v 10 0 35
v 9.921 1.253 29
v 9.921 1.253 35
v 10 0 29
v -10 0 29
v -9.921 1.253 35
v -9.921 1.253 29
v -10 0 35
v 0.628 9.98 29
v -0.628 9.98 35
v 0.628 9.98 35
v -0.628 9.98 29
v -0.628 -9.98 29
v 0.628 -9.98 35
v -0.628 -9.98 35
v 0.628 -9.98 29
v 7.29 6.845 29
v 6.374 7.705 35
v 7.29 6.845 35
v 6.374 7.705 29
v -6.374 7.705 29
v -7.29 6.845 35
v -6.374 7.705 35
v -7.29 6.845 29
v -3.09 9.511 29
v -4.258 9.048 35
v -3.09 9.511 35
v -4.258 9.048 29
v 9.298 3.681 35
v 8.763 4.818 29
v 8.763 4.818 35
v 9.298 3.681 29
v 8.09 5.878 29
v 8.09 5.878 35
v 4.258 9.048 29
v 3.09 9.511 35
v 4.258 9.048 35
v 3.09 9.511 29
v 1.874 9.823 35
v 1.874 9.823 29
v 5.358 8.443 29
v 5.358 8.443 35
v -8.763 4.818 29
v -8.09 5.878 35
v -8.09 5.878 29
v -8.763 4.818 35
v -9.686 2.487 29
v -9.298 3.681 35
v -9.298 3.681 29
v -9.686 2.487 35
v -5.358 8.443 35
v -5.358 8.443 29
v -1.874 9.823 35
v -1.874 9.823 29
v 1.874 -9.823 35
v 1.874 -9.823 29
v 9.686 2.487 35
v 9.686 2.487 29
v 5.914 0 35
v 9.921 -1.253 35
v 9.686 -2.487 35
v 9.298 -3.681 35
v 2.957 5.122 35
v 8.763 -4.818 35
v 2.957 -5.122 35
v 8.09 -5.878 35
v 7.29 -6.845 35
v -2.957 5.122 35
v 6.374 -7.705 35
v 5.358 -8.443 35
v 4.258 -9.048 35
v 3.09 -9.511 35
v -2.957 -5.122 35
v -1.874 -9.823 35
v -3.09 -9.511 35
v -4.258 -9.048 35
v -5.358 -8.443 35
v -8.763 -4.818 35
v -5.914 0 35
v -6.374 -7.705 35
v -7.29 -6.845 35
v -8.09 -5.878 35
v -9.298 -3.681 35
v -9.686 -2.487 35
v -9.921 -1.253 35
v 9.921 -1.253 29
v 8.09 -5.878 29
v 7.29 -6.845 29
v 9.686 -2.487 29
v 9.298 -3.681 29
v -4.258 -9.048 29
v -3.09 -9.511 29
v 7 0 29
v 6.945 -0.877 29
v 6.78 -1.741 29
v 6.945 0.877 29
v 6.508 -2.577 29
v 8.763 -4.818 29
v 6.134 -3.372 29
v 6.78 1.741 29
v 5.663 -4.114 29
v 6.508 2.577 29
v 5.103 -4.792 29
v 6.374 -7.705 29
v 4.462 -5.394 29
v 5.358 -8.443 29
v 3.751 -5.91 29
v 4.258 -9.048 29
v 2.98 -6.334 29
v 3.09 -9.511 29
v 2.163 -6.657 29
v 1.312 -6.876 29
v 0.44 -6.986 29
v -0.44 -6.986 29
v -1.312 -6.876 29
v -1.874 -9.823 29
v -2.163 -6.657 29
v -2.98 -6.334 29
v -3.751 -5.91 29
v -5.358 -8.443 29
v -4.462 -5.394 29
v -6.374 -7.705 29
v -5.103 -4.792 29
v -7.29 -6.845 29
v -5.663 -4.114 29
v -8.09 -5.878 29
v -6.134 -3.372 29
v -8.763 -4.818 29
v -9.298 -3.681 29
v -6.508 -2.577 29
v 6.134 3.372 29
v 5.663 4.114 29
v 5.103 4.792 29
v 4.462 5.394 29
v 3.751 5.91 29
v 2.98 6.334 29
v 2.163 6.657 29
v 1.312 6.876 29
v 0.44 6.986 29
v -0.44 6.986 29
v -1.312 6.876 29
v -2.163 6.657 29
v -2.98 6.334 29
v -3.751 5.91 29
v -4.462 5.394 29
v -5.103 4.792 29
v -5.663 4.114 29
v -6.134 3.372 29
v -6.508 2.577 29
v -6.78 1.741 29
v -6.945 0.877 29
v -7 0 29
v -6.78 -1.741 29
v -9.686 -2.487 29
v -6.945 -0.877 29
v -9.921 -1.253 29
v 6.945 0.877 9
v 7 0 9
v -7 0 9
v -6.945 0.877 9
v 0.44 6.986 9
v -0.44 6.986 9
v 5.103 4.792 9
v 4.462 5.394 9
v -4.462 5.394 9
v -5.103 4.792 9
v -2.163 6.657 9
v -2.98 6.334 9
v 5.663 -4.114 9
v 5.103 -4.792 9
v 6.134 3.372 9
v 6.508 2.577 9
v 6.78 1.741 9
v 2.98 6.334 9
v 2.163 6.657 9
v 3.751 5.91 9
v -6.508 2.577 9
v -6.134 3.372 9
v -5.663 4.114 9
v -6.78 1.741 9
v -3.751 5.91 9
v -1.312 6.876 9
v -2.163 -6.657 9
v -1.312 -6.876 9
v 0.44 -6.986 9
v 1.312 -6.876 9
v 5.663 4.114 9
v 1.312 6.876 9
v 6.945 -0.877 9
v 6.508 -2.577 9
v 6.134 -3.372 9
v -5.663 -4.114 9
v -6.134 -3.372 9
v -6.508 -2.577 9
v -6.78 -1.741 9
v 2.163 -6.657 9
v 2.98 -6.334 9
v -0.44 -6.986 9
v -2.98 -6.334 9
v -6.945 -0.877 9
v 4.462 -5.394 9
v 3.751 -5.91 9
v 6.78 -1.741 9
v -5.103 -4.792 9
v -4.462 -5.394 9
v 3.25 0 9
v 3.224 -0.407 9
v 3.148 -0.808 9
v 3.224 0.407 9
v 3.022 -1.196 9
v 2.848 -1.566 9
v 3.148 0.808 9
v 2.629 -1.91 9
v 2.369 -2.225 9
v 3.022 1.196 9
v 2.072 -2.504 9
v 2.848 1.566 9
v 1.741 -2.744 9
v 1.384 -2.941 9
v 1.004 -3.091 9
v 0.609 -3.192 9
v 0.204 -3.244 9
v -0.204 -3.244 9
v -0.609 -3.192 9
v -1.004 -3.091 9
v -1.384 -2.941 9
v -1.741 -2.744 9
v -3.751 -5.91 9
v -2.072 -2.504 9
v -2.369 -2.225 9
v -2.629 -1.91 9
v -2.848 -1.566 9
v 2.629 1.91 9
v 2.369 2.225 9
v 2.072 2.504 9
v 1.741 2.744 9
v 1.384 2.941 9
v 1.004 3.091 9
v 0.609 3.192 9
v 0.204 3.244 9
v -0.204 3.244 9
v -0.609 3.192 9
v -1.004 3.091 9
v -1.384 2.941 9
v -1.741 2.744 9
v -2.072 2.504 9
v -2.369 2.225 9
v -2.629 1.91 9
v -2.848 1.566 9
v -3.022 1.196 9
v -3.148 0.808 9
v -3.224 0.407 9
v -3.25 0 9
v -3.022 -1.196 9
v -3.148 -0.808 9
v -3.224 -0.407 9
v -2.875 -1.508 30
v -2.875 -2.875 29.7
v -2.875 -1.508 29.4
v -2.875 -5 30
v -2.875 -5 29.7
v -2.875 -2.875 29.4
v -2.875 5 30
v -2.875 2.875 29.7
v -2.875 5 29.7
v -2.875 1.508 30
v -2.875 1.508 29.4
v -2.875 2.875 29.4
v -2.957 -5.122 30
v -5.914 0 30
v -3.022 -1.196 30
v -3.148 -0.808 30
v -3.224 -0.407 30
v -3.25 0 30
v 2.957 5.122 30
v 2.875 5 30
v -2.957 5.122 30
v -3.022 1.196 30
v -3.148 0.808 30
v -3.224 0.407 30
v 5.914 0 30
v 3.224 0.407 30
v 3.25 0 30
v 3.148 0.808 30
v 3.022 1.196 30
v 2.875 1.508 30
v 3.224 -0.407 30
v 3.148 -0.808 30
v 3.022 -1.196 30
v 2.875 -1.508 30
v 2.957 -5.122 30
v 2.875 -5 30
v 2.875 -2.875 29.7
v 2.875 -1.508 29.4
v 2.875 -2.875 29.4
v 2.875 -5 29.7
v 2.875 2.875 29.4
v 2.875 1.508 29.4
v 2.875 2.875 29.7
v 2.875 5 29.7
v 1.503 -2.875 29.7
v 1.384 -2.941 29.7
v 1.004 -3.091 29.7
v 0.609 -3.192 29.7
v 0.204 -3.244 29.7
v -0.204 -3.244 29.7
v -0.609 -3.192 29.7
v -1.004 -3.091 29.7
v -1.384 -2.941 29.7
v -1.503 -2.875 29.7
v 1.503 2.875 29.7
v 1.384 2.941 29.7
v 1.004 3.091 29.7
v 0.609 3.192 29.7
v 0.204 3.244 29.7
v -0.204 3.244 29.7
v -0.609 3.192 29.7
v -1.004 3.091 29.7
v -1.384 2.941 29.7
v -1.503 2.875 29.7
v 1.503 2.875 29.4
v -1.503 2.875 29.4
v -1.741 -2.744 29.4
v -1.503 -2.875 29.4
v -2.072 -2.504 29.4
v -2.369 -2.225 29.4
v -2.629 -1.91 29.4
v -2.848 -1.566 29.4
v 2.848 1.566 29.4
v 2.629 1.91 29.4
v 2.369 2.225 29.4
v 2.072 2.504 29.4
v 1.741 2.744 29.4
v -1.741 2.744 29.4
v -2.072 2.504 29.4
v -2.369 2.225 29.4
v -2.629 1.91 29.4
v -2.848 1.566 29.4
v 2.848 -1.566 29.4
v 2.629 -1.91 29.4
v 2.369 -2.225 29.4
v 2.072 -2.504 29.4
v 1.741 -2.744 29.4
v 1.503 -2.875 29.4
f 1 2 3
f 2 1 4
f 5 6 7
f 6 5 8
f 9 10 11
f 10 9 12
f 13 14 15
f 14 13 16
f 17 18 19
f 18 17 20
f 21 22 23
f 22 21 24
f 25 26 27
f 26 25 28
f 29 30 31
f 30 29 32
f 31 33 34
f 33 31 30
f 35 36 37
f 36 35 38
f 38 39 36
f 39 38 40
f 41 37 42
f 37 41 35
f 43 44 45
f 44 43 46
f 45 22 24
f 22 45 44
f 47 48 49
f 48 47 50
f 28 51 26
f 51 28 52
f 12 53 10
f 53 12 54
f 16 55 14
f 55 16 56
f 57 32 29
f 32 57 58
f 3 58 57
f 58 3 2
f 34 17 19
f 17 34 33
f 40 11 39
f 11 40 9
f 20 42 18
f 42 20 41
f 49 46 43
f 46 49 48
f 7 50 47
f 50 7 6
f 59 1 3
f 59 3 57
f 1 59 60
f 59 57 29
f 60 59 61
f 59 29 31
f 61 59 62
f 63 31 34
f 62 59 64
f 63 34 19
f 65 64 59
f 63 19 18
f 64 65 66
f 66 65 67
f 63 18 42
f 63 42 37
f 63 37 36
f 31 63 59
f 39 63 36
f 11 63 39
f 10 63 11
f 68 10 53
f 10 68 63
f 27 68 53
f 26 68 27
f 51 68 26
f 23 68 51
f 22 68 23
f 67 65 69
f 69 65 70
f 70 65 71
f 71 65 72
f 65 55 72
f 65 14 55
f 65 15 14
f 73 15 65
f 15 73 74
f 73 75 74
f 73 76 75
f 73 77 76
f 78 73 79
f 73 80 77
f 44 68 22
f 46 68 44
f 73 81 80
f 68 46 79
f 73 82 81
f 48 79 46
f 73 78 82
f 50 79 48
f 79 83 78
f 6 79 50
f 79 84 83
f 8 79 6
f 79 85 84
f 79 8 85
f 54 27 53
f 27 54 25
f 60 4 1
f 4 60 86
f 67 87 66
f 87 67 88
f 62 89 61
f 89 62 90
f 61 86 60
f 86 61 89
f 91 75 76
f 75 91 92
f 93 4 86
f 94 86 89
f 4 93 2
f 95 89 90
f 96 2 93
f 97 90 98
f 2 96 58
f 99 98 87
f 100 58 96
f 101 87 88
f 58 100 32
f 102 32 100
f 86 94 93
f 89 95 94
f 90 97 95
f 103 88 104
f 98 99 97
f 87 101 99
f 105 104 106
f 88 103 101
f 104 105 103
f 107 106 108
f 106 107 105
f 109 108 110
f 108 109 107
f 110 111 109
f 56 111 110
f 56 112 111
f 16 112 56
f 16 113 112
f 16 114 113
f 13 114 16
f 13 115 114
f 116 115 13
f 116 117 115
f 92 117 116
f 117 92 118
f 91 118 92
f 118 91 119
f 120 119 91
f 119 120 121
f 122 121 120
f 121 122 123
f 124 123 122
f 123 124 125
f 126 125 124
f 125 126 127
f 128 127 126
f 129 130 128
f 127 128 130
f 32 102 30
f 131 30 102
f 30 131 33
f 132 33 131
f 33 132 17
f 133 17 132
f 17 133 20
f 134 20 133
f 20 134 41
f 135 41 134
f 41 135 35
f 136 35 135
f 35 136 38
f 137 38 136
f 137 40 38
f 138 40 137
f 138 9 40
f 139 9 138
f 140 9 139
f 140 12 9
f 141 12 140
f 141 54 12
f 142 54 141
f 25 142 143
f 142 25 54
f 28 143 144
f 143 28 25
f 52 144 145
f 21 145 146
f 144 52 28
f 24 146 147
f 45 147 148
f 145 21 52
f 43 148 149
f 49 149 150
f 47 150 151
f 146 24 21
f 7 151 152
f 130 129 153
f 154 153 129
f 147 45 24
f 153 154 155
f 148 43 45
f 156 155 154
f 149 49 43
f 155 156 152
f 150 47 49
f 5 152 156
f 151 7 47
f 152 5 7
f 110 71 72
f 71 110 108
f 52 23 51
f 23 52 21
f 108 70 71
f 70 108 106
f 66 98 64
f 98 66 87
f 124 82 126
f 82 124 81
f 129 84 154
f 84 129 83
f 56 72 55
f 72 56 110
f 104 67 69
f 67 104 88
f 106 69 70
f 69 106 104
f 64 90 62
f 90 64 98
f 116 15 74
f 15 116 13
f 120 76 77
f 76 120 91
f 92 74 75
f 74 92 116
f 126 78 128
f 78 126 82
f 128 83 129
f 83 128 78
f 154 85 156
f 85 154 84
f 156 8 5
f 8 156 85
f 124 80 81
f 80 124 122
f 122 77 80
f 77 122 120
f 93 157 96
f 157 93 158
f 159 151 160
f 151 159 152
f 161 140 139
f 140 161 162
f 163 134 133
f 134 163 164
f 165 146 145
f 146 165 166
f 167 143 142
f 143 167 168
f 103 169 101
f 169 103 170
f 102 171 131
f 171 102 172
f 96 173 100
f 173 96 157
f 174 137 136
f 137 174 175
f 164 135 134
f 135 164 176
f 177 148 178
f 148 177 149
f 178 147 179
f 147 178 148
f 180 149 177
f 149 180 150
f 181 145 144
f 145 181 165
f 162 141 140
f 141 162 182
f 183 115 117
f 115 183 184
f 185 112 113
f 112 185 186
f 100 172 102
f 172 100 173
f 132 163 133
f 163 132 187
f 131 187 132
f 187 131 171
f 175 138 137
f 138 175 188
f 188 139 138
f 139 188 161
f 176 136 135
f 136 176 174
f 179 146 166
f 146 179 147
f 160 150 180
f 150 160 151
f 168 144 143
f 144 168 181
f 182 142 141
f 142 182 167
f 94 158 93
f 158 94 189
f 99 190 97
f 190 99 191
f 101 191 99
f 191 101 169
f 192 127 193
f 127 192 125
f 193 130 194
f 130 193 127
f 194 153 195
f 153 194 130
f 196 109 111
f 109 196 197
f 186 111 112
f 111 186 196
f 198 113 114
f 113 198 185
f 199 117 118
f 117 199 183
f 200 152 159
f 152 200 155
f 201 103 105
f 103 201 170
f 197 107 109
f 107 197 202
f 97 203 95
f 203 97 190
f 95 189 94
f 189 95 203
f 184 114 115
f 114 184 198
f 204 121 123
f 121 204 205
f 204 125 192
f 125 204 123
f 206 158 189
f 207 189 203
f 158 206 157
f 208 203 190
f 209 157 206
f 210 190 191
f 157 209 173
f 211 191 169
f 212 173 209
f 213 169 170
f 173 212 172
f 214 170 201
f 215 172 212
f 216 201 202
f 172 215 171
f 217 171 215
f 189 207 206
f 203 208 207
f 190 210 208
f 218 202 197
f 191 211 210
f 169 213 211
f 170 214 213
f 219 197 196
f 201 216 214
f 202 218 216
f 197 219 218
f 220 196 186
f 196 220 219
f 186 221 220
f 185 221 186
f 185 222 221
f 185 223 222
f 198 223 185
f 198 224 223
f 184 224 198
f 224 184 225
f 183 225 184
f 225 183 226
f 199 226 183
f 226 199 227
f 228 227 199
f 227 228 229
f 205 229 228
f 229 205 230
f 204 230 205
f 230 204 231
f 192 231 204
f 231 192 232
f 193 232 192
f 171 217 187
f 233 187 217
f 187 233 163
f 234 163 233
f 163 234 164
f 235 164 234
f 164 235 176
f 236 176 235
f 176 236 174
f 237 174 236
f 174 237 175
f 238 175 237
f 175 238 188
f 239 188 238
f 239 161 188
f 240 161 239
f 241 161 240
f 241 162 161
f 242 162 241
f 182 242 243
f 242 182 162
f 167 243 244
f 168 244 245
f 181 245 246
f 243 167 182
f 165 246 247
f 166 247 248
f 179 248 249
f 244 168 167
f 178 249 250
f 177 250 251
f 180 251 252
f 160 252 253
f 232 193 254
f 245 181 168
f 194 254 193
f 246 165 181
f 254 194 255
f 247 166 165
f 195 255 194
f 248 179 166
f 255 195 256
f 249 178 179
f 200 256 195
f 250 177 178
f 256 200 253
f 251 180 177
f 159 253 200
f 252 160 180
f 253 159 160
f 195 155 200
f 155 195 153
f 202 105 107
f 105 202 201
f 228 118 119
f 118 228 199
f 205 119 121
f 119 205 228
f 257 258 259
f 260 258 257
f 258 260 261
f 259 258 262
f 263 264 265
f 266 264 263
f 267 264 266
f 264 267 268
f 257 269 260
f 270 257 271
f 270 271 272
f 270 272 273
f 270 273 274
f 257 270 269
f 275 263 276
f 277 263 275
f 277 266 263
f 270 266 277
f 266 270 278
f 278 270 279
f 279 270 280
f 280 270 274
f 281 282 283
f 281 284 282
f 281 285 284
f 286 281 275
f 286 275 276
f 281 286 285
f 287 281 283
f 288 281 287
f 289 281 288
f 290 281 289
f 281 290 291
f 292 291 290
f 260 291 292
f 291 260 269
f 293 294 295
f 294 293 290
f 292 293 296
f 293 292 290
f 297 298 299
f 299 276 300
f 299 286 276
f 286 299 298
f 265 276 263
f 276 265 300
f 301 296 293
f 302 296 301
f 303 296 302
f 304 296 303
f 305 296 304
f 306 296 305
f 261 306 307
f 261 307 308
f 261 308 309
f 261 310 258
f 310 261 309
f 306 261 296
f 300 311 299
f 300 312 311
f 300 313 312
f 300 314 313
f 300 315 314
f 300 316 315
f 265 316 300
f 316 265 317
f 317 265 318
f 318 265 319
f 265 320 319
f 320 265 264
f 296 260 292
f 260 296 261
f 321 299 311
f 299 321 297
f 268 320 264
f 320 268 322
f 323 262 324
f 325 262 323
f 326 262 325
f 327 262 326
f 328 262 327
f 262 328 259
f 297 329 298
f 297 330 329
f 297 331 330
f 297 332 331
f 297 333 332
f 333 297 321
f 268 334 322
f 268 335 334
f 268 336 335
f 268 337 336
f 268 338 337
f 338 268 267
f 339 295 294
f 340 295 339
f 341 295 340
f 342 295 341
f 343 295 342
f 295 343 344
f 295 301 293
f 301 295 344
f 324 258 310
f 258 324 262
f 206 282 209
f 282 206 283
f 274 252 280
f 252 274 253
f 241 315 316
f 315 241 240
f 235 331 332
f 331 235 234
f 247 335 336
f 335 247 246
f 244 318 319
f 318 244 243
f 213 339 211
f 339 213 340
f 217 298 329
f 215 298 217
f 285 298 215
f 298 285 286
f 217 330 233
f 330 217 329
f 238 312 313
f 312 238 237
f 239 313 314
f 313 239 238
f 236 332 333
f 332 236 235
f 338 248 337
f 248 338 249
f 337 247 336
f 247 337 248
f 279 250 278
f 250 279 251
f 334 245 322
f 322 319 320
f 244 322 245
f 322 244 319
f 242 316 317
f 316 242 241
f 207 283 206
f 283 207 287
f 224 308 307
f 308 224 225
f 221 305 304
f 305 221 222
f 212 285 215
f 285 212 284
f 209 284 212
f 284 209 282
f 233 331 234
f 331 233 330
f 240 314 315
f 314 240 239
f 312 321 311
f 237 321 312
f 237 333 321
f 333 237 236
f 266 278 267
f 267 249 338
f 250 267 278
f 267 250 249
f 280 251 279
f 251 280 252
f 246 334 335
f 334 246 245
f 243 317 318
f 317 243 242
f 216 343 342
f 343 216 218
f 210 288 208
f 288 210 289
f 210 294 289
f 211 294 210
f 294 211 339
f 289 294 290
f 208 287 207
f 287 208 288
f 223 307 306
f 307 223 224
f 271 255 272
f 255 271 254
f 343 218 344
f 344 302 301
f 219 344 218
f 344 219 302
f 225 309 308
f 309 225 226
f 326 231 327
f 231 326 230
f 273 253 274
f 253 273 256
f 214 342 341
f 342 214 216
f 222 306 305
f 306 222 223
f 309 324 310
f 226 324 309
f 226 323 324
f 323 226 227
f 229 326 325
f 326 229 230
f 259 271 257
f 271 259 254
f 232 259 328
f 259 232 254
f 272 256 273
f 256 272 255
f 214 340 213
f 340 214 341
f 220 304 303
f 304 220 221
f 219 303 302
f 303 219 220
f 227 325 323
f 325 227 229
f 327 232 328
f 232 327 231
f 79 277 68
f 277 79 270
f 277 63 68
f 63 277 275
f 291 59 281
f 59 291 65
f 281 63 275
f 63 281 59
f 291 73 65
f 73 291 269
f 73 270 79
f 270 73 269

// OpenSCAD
$fn = 50;


difference() {
	union() {
		translate(v = [0, 0, 29.0000000000]) {
			cylinder(h = 6, r = 10.0000000000);
		}
		translate(v = [0, 0, 9.0000000000]) {
			cylinder(h = 26, r = 7.0000000000);
		}
	}
	union() {
		translate(v = [0, 0, 35]) {
			rotate(a = [0, 0, 0]) {
				difference() {
					union() {
						#translate(v = [-2.8750000000, -5.0000000000, -5.3000000000]) {
							cube(size = [5.7500000000, 10, 0.3000000000]);
						}
						#translate(v = [-2.8750000000, -2.8750000000, -5.6000000000]) {
							cube(size = [5.7500000000, 5.7500000000, 0.3000000000]);
						}
						#translate(v = [-2.8750000000, -5.0000000000, 0]) {
							cube(size = [5.7500000000, 10, 0.3000000000]);
						}
						#translate(v = [-2.8750000000, -2.8750000000, 0.3000000000]) {
							cube(size = [5.7500000000, 5.7500000000, 0.3000000000]);
						}
						#translate(v = [0, 0, -100.0000000000]) {
							cylinder(h = 200, r = 3.2500000000);
						}
						translate(v = [0, 0, -5]) {
							#linear_extrude(height = 5) {
								polygon(points = [[5.9142500000, 0.0000000000], [2.9571250000, 5.1218907443], [-2.9571250000, 5.1218907443], [-5.9142500000, 0.0000000000], [-2.9571250000, -5.1218907443], [2.9571250000, -5.1218907443]]);
							}
						}
						#translate(v = [-2.8750000000, -5.0000000000, -5.3000000000]) {
							cube(size = [5.7500000000, 10, 0.3000000000]);
						}
						#translate(v = [-2.8750000000, -2.8750000000, -5.6000000000]) {
							cube(size = [5.7500000000, 5.7500000000, 0.3000000000]);
						}
						#translate(v = [-2.8750000000, -5.0000000000, 0]) {
							cube(size = [5.7500000000, 10, 0.3000000000]);
						}
						#translate(v = [-2.8750000000, -2.8750000000, 0.3000000000]) {
							cube(size = [5.7500000000, 5.7500000000, 0.3000000000]);
						}
						#translate(v = [0, 0, -100.0000000000]) {
							cylinder(h = 200, r = 3.2500000000);
						}
						#translate(v = [-2.8750000000, -5.0000000000, -5.3000000000]) {
							cube(size = [5.7500000000, 10, 0.3000000000]);
						}
						#translate(v = [-2.8750000000, -2.8750000000, -5.6000000000]) {
							cube(size = [5.7500000000, 5.7500000000, 0.3000000000]);
						}
						#translate(v = [-2.8750000000, -5.0000000000, 0]) {
							cube(size = [5.7500000000, 10, 0.3000000000]);
						}
						#translate(v = [-2.8750000000, -2.8750000000, 0.3000000000]) {
							cube(size = [5.7500000000, 5.7500000000, 0.3000000000]);
						}
						#translate(v = [0, 0, -100.0000000000]) {
							cylinder(h = 200, r = 3.2500000000);
						}
					}
					union();
				}
			}
		}
		#translate(v = [0, 0, -100.0000000000]) {
			cylinder(h = 200, r = 3.2500000000);
		}
	}
}
